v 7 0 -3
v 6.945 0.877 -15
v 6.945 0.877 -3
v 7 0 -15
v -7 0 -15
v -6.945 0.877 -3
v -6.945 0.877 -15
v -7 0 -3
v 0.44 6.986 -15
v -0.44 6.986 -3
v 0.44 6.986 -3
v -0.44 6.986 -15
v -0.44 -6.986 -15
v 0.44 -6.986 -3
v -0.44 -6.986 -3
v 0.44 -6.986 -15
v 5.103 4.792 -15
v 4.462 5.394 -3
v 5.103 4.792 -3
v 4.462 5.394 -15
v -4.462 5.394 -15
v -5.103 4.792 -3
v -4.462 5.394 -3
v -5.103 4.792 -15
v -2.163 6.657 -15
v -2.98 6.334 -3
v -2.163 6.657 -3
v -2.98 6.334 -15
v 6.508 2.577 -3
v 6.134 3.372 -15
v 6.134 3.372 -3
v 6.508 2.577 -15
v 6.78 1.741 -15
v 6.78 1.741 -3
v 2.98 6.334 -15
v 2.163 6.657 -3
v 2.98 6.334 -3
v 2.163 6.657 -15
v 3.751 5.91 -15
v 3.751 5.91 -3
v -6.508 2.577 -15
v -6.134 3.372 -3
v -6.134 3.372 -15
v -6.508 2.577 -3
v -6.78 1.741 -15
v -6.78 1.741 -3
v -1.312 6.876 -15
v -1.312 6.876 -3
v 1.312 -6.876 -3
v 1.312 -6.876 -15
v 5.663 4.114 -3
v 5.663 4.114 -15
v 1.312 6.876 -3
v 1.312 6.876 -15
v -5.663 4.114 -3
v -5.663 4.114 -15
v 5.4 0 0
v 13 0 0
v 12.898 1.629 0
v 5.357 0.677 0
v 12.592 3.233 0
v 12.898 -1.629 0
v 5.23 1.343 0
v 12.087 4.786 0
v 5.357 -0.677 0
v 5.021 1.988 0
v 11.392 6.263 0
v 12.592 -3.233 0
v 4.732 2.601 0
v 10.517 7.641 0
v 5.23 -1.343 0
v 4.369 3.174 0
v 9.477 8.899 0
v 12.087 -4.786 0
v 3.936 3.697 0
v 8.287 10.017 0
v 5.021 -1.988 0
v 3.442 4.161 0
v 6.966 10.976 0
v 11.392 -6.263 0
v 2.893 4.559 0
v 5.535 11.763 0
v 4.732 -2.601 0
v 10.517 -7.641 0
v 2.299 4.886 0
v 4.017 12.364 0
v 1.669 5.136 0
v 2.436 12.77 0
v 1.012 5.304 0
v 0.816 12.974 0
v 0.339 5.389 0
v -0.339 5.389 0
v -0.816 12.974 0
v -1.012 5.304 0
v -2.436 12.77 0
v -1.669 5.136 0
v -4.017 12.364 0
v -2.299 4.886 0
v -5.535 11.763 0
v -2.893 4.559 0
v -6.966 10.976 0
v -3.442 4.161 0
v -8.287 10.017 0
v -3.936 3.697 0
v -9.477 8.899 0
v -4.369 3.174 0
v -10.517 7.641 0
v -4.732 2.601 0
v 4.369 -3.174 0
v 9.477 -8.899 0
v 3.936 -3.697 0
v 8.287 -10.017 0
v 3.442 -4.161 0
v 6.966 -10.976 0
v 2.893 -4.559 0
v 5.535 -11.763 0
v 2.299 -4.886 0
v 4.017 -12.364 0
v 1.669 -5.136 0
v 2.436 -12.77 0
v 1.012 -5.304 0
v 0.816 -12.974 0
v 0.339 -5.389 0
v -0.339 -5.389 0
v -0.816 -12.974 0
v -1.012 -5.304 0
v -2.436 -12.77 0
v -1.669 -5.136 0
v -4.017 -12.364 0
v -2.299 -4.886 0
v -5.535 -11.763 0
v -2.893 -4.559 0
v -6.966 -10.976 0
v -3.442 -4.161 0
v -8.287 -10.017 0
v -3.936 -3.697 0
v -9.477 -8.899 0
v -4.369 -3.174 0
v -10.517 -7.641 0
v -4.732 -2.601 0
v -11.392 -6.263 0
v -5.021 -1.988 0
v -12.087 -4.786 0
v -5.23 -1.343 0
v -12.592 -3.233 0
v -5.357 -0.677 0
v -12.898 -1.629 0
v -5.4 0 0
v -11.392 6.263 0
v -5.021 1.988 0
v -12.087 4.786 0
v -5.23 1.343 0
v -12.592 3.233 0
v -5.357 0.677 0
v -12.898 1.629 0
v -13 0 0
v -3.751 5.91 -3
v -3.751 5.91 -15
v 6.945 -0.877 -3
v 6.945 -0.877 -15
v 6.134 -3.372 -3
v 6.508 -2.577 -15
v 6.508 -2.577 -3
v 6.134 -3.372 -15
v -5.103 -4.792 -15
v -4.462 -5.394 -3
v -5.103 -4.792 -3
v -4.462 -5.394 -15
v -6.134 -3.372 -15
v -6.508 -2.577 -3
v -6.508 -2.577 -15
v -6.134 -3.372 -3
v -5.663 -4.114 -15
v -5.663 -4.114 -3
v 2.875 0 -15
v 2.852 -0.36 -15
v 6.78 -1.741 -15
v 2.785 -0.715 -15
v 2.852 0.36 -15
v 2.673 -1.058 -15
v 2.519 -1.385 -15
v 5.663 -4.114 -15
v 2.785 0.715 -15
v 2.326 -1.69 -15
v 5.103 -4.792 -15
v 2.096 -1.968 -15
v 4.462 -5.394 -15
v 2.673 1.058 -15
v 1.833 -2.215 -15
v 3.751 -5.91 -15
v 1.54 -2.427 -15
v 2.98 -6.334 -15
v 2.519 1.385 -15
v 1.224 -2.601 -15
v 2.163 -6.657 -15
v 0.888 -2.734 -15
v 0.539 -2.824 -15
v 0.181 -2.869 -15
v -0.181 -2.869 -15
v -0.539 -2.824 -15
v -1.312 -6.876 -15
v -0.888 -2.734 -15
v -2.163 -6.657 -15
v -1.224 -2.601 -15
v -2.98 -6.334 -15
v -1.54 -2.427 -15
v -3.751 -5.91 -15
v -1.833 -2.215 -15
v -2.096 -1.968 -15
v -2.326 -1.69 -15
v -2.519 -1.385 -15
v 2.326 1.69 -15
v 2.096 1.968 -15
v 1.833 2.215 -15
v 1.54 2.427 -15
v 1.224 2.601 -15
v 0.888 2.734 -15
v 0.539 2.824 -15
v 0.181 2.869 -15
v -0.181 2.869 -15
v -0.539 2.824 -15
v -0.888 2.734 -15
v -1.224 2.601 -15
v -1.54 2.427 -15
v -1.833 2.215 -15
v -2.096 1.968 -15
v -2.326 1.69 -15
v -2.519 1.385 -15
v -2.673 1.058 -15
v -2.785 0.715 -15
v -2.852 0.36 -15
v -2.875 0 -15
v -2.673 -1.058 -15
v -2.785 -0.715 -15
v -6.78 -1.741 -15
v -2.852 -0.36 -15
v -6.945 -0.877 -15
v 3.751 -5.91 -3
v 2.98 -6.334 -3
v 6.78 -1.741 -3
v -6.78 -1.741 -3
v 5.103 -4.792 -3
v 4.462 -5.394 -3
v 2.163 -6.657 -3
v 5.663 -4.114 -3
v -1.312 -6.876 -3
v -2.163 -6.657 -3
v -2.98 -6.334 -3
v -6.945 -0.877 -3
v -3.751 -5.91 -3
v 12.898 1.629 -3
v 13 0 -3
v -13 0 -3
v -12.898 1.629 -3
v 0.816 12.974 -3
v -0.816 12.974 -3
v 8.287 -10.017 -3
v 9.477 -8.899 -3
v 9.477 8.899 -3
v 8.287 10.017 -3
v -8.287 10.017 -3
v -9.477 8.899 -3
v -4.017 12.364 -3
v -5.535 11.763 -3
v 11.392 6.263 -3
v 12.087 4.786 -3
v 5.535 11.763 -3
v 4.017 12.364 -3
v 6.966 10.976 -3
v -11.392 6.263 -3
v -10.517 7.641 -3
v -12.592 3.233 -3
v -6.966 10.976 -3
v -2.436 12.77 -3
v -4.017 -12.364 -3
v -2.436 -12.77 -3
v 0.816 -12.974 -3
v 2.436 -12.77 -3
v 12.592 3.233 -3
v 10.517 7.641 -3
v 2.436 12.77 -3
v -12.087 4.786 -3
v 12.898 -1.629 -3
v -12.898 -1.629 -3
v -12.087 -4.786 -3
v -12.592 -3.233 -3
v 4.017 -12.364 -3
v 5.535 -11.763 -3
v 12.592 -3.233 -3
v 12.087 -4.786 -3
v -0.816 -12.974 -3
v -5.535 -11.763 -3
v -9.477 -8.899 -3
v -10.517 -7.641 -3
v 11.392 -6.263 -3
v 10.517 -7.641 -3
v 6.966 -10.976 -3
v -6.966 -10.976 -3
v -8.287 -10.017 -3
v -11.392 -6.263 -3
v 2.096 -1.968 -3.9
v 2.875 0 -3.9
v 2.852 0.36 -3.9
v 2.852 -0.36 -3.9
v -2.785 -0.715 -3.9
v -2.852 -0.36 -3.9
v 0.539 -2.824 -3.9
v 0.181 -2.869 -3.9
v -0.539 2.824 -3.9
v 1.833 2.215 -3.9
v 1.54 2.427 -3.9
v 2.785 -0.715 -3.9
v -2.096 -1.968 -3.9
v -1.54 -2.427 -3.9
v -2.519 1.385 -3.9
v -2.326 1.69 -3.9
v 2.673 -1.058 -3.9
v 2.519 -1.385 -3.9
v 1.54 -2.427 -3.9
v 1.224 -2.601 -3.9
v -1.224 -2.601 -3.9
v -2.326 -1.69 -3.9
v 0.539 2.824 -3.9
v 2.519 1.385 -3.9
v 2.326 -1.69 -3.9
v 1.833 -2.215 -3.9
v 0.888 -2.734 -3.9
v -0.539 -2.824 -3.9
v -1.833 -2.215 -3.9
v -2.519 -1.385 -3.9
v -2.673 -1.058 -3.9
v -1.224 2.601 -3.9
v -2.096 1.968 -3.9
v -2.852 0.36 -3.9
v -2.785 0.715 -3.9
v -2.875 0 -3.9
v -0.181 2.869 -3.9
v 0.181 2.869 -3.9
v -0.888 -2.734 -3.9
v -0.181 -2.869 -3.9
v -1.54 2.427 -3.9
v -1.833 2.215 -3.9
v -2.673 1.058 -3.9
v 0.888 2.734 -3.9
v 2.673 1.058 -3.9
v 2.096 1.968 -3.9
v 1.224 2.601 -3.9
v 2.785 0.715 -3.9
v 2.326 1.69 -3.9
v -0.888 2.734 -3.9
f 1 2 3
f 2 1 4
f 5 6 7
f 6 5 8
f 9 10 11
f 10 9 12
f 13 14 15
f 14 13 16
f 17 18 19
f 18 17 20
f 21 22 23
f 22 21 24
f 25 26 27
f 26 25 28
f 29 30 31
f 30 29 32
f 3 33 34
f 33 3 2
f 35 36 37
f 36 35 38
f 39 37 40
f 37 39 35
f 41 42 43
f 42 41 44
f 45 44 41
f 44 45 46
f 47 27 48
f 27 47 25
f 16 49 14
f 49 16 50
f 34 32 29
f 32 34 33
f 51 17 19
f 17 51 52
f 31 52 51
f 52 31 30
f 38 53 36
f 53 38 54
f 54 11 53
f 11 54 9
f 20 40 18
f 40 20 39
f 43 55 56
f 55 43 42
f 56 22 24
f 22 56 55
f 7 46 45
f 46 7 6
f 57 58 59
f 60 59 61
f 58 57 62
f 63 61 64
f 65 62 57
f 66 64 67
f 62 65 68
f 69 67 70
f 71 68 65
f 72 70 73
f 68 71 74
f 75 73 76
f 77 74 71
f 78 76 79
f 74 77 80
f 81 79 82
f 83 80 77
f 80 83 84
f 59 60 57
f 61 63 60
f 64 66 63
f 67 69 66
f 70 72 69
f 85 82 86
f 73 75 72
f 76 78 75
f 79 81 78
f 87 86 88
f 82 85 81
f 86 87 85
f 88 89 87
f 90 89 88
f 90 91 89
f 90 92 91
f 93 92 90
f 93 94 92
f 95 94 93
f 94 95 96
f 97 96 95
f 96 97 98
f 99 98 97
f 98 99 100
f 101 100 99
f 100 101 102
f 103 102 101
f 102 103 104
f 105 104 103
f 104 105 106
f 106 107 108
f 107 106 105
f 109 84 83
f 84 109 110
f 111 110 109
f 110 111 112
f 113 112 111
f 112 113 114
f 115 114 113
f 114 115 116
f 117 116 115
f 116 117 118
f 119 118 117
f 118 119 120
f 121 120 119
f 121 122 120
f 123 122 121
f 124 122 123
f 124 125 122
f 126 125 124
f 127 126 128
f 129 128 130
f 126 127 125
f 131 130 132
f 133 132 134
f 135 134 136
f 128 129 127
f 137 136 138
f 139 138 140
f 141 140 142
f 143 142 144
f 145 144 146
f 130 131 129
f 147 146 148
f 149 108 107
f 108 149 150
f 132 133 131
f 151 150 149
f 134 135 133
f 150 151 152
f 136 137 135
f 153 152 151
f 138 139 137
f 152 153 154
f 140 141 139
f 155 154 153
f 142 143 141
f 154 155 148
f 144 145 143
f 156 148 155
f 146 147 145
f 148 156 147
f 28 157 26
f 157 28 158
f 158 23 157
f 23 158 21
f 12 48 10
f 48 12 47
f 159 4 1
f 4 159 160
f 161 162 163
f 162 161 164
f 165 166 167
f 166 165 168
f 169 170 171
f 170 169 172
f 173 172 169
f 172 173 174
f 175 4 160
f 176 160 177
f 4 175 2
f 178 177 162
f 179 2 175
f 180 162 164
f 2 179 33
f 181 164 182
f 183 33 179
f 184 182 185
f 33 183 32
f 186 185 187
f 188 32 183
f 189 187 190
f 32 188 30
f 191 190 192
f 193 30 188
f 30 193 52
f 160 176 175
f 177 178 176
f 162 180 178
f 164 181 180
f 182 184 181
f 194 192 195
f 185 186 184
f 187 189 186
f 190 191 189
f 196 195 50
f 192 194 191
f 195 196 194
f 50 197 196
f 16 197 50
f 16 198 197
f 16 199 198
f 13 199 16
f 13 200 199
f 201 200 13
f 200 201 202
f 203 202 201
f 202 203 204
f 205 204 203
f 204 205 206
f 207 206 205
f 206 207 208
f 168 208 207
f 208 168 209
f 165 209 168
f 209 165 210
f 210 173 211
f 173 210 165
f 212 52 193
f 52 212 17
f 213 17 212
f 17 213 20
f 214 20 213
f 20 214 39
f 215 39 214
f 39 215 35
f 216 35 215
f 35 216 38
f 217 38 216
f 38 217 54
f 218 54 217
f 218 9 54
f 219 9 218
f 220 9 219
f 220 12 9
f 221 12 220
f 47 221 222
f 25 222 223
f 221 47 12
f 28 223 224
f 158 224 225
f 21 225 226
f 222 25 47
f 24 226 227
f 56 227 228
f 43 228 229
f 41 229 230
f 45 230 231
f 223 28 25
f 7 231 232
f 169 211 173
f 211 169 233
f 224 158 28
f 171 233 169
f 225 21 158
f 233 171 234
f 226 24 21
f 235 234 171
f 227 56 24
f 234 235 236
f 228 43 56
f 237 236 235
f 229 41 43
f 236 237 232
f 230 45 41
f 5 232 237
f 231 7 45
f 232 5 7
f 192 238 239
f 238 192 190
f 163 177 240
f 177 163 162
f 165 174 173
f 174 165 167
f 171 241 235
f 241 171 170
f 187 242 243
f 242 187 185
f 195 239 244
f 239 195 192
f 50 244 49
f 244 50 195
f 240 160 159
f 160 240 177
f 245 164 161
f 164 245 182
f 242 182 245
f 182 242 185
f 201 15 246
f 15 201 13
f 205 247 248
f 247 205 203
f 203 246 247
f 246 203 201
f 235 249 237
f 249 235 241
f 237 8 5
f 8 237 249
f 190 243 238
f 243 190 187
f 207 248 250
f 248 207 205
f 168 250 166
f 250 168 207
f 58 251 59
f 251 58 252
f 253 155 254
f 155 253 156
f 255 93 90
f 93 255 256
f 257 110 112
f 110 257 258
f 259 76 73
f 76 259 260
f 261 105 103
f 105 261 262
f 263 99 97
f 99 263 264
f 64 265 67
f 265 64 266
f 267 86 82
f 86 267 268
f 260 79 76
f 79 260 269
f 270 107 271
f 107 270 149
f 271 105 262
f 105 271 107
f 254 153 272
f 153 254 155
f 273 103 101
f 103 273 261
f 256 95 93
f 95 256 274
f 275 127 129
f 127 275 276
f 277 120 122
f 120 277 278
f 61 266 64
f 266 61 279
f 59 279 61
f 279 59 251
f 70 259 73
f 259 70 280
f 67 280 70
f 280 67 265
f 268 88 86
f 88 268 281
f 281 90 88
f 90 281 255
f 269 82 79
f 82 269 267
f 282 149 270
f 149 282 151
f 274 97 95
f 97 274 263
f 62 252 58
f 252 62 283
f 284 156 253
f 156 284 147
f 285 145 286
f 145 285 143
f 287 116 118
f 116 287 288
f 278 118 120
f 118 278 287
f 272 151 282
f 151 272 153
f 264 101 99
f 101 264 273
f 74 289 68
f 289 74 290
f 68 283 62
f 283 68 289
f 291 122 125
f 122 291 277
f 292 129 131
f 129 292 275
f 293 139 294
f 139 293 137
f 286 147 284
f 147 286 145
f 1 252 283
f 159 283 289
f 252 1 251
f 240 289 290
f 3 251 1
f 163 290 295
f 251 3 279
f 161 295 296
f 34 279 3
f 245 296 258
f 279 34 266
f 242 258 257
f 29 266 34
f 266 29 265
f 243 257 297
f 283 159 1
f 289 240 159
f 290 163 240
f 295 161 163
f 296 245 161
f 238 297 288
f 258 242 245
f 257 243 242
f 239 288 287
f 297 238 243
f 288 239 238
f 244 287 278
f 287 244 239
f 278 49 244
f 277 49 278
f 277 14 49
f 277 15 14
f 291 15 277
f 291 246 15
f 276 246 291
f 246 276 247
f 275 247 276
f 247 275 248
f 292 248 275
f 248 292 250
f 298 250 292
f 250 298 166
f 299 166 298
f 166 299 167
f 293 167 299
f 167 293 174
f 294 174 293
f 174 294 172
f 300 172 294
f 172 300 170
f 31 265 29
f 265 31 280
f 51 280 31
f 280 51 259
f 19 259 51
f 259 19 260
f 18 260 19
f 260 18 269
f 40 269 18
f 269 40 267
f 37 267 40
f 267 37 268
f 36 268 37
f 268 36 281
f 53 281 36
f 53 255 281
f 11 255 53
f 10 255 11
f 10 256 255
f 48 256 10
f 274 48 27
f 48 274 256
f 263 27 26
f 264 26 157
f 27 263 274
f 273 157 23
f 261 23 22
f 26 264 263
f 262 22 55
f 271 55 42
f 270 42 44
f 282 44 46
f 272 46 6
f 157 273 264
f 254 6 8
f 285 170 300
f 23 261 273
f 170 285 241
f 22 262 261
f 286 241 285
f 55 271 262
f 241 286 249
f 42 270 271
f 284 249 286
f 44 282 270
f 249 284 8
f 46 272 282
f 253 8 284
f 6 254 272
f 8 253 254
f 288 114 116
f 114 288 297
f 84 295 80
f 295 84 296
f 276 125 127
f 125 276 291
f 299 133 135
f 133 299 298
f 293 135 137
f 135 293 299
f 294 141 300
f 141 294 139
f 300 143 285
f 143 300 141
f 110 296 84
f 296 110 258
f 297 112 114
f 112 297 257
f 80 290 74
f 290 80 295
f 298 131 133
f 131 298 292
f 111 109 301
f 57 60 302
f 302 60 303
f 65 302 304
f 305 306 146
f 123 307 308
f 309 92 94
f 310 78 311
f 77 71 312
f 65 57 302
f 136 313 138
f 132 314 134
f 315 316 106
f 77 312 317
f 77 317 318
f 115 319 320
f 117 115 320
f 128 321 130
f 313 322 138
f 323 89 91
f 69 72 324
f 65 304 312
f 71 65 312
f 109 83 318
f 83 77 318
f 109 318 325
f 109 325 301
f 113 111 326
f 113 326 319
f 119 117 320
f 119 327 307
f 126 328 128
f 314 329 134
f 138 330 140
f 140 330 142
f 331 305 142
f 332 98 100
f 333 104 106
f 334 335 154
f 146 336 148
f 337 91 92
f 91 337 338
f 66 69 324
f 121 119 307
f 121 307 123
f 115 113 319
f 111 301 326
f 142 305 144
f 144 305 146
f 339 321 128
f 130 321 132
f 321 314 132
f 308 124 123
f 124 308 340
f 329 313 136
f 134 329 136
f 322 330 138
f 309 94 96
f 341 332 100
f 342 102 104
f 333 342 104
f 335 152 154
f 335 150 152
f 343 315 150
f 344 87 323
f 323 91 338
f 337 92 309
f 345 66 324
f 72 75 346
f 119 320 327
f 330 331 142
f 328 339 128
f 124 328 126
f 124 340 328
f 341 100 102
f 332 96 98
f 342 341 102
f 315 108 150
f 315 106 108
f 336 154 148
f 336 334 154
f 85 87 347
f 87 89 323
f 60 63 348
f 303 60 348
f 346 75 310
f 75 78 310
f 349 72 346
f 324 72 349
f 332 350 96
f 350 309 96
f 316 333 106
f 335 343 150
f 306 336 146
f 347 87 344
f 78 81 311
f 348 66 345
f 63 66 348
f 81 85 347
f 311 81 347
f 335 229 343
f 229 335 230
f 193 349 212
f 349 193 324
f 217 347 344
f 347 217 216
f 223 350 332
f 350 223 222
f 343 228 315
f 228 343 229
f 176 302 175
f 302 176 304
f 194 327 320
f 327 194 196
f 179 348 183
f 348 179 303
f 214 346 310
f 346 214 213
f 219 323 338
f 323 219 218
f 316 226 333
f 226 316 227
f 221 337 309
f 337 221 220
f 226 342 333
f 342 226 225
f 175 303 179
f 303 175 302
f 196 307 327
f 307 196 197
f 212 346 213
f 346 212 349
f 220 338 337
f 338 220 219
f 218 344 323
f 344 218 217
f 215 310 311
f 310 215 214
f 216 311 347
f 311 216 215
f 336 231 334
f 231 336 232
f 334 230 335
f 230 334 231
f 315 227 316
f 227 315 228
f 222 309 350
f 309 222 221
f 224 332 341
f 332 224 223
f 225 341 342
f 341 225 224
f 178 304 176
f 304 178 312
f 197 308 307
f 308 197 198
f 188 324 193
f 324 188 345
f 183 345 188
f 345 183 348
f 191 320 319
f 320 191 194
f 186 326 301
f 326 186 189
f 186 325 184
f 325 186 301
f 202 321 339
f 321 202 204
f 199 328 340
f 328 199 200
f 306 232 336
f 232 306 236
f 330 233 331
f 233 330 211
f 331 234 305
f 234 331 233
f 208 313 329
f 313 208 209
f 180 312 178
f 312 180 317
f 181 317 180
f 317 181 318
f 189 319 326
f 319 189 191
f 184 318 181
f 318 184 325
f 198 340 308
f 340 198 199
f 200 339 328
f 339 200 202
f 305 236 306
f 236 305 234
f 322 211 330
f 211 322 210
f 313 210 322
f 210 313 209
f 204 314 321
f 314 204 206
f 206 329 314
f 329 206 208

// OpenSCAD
$fn = 50;


difference() {
	union() {
		translate(v = [0, 0, -15.0000000000]) {
			cylinder(h = 15, r = 7.0000000000);
		}
		translate(v = [0, 0, -3.0000000000]) {
			cylinder(h = 3, r = 13.0000000000);
		}
	}
	union() {
		translate(v = [0, 0, 0]) {
			rotate(a = [0, 0, 0]) {
				difference() {
					union() {
						#translate(v = [0, 0, -15.0000000000]) {
							cylinder(h = 15, r = 2.6000000000);
						}
						#translate(v = [0, 0, -3.9000000000]) {
							cylinder(h = 3.9000000000, r = 7.0000000000, r1 = 2.8750000000, r2 = 5.4000000000);
						}
						#translate(v = [0, 0, -15.0000000000]) {
							cylinder(h = 15, r = 2.8750000000);
						}
						#translate(v = [0, 0, -15.0000000000]) {
							cylinder(h = 15, r = 2.6000000000);
						}
					}
					union();
				}
			}
		}
	}
}
